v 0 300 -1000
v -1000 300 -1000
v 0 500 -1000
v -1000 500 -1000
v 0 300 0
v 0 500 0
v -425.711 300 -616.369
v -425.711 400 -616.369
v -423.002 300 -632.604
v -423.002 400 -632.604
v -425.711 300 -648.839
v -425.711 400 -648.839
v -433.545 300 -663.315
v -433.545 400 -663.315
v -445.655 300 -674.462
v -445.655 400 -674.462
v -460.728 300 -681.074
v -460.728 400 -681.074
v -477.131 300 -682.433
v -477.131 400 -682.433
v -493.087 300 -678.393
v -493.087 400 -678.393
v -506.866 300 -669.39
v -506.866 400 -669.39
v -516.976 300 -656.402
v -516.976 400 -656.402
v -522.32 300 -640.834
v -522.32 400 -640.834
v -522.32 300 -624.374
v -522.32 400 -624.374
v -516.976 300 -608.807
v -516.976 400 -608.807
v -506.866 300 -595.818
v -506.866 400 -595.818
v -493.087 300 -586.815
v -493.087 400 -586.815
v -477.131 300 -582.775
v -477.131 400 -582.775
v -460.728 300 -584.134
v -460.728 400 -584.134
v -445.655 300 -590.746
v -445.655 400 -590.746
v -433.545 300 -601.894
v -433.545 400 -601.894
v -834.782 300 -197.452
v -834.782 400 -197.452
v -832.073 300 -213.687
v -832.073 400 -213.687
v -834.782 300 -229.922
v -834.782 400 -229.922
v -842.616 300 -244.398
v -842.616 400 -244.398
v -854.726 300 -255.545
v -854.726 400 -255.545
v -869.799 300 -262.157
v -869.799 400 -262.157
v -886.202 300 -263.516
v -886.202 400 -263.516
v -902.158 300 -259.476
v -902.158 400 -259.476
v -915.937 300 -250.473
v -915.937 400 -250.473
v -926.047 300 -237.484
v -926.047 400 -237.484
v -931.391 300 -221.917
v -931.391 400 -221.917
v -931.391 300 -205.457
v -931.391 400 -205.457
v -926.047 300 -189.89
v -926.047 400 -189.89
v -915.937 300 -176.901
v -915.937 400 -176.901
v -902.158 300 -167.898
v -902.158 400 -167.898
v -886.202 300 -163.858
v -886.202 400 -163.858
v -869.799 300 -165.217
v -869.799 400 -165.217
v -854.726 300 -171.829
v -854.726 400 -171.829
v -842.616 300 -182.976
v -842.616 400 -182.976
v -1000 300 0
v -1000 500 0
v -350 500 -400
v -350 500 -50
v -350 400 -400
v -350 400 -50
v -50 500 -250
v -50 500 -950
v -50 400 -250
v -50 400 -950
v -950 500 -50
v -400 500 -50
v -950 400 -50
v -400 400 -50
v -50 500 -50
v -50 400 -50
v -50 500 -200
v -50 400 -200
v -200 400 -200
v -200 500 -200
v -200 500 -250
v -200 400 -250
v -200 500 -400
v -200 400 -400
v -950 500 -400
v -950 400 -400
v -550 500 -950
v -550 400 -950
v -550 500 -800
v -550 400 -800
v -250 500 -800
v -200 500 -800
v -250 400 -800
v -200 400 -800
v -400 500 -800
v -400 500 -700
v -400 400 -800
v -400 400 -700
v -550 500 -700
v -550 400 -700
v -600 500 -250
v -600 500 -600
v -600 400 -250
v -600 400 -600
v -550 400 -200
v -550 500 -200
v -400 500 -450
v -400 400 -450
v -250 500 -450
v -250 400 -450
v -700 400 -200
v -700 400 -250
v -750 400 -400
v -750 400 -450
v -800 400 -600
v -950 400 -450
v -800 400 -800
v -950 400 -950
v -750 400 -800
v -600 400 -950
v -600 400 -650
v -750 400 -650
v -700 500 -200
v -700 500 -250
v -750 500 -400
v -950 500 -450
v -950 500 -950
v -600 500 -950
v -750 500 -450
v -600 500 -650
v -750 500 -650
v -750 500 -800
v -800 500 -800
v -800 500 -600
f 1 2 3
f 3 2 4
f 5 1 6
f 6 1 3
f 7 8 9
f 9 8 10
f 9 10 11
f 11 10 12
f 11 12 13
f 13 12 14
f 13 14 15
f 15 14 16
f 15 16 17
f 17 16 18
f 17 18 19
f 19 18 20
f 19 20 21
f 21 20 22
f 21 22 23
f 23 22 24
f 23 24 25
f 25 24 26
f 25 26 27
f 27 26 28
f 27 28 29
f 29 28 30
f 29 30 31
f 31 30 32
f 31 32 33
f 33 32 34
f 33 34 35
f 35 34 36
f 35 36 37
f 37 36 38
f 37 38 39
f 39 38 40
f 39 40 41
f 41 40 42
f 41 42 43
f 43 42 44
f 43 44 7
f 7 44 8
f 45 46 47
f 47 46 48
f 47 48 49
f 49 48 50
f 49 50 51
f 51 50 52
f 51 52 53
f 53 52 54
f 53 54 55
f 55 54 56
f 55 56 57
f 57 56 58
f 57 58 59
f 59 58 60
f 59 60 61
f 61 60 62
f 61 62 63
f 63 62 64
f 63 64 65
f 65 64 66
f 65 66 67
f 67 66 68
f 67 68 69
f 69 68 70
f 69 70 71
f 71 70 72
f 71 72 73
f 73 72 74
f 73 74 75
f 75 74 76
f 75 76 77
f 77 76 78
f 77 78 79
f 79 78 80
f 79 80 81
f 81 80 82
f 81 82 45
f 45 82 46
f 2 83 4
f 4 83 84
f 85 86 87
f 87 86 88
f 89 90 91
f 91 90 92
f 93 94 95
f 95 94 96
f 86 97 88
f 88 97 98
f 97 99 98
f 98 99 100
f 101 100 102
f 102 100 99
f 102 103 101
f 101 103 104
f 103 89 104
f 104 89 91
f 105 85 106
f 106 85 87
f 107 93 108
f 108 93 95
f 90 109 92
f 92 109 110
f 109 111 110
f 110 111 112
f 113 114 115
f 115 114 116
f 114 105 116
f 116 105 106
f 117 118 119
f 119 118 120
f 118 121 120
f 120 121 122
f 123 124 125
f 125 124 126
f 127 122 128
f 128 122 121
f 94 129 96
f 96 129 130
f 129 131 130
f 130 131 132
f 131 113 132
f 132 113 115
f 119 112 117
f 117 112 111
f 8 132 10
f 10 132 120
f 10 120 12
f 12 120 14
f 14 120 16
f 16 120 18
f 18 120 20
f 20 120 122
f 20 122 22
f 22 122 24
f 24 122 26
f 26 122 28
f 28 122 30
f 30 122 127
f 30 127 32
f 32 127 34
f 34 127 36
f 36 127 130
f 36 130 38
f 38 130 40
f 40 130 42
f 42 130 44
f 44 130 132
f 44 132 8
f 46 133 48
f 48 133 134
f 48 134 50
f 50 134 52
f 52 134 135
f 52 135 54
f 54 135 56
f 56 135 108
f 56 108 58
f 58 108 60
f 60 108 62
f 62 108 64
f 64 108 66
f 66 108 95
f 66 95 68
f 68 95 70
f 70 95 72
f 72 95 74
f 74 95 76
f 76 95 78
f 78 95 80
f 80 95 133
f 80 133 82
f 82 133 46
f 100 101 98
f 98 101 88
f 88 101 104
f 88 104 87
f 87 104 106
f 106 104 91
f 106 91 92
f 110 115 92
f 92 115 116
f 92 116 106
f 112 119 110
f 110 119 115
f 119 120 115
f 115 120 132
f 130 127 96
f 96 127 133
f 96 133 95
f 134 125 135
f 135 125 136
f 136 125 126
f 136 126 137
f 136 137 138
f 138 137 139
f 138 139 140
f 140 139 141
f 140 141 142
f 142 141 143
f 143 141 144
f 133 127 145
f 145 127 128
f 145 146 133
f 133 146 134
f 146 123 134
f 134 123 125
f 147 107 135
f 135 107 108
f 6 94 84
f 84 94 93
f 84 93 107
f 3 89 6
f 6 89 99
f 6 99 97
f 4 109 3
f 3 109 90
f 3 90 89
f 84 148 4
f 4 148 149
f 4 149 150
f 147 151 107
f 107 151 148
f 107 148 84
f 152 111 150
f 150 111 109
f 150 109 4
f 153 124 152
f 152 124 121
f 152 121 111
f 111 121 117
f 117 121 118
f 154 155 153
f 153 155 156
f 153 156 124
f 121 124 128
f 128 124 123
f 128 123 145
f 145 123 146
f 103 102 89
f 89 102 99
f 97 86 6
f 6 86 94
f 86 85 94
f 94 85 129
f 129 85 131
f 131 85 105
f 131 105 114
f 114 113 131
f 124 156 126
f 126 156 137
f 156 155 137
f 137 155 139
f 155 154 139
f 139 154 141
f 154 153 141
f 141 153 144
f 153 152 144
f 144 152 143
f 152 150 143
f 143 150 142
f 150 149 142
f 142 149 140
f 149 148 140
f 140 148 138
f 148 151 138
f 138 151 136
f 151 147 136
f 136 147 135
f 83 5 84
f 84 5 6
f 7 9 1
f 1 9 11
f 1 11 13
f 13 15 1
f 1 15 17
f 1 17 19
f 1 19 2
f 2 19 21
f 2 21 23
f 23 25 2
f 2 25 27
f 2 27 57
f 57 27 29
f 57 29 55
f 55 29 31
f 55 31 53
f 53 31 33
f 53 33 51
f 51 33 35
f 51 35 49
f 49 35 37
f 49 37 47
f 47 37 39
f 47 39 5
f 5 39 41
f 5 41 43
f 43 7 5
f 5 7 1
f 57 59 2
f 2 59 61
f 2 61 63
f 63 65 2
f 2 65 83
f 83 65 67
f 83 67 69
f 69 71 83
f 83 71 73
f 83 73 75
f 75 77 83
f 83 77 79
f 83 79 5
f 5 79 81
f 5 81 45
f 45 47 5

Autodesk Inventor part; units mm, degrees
ref_plane "YZ Plane" through (0, 0, 0) normal (1, 0, 0) x (0, 1, 0)
ref_plane "XZ Plane" through (0, 0, 0) normal (0, 1, 0) x (-1, 0, 0)
ref_plane "XY Plane" through (0, 0, 0) normal (0, 0, 1) x (1, 0, 0)
sketch "Sketch1" plane through (0, 0, 0) normal (0, 1, 0) x (-1, 0, 0)
  line L0 (0, 0) -> (1000, 0)
  line L1 (1000, 0) -> (1000, -1000)
  line L2 (1000, -1000) -> (0, -1000)
  line L3 (0, -1000) -> (0, 0)
  dimension "d0" = 1000
  dimension "d1" = 1000
  dimension "d2" = 1000
extrude "Extrusion1" add sketch "Sketch1" along normal blind 500
sketch "Sketch2" plane through (0, 500, 0) normal (0, 1, 0) x (1, 0, 0)
  point P0 (0, 0)
sketch "Sketch3" plane through (0, 500, 0) normal (0, 1, 0) x (1, 0, 0)
  point P0 (0, 0)
sketch "Sketch4" plane through (0, 500, 0) normal (0, 1, 0) x (1, 0, 0)
  line L0 (-1000, 0) -> (0, 0) projected
  line L1 (-50, 50) -> (-50, 200)
  line L2 (-50, 200) -> (-200, 200)
  line L3 (-200, 200) -> (-350, 200)
  line L4 (-350, 200) -> (-350, 50)
  line L5 (-350, 50) -> (-50, 50)
  dimension "d7" = 150
  dimension "d8" = 150
  dimension "d9" = 150
  dimension "d10" = 150
  dimension "d13" = 200
  dimension "d14" = 50
extrude "Extrusion2" cut sketch "Sketch4" against normal blind 100
sketch "Sketch5" plane through (0, 500, 0) normal (0, 1, 0) x (1, 0, 0)
  line L0 (-350, 200) -> (-50, 200) projected
  line L1 (-350, 200) -> (-350, 400)
  line L2 (-350, 400) -> (-50, 400)
  line L3 (-50, 400) -> (-50, 250)
  line L4 (-50, 250) -> (-200, 250)
  line L5 (-200, 250) -> (-200, 200)
  point P0 (0, 0)
  dimension "d17" = 200
  dimension "d18" = 300
  dimension "d19" = 150
  dimension "d20" = 150
extrude "Extrusion3" cut sketch "Sketch5" against normal blind 100
sketch "Sketch6" plane through (0, 500, 0) normal (0, 1, 0) x (1, 0, 0)
  line L0 (-50, 400) -> (-50, 250) projected
  line L1 (-50, 400) -> (-50, 900)
  line L2 (-50, 900) -> (-50, 950)
  line L3 (-50, 950) -> (-550, 950)
  line L4 (-550, 950) -> (-550, 800)
  line L5 (-550, 800) -> (-250, 800)
  line L6 (-250, 800) -> (-200, 800)
  line L7 (-200, 800) -> (-200, 400)
  line L8 (-350, 400) -> (-50, 400) projected
  line L9 (-200, 400) -> (-50, 400)
  point P0 (0, 0)
  dimension "d23" = 500
  dimension "d24" = 50
  dimension "d25" = 500
  dimension "d26" = 150
  dimension "d27" = 300
  dimension "d28" = 50
extrude "Extrusion4" cut sketch "Sketch6" against normal blind 100
sketch "Sketch7" plane through (0, 500, 0) normal (0, 1, 0) x (1, 0, 0)
  line L0 (-250, 800) -> (-250, 500)
  line L1 (-250, 500) -> (-250, 450)
  line L2 (-250, 450) -> (-400, 450)
  line L3 (-400, 450) -> (-400, 50)
  line L4 (-400, 50) -> (-550, 50)
  line L5 (-550, 50) -> (-550, 200)
  line L6 (-550, 200) -> (-550, 400)
  line L7 (-550, 400) -> (-550, 600)
  line L8 (-550, 600) -> (-550, 700)
  line L9 (-550, 700) -> (-400, 700)
  line L10 (-400, 700) -> (-400, 800)
  line L11 (-400, 800) -> (-250, 800)
  point P0 (0, 0)
  point P1 (-200, 800)
  dimension "d32" = 50
  dimension "d33" = 300
  dimension "d34" = 50
  dimension "d35" = 150
  dimension "d36" = 400
  dimension "d37" = 150
  dimension "d38" = 150
  dimension "d39" = 200
  dimension "d40" = 200
  dimension "d41" = 100
  dimension "d42" = 150
  dimension "d43" = 250
extrude "Extrusion5" cut sketch "Sketch7" against normal blind 100
sketch "Sketch8" plane through (0, 500, 0) normal (0, 1, 0) x (1, 0, 0)
  point P0 (0, 0)
sketch "Sketch9" plane through (0, 500, 0) normal (0, 1, 0) x (1, 0, 0)
  point P0 (0, 0)
sketch "Sketch10" plane through (0, 500, 0) normal (0, 1, 0) x (1, 0, 0)
  line L0 (0, 0) -> (0, 1000) projected
  line L1 (-550, 50) -> (-550, 200)
  line L2 (-550, 50) -> (-550, 700) projected
  line L3 (-550, 200) -> (-650, 200)
  line L4 (-650, 200) -> (-850, 200)
  line L5 (-850, 200) -> (-900, 200)
  line L6 (-900, 200) -> (-950, 200)
  line L7 (-950, 200) -> (-950, 50)
  line L8 (-950, 50) -> (-550, 50)
  point P0 (-400, 50)
  dimension "d48" = 150
  dimension "d49" = 150
  dimension "d50" = 100
  dimension "d51" = 200
  dimension "d52" = 50
  dimension "d53" = 50
extrude "Extrusion6" cut sketch "Sketch10" against normal blind 100
sketch "Sketch11" plane through (0, 500, 0) normal (0, 1, 0) x (1, 0, 0)
  line L0 (-700, 200) -> (-700, 250)
  line L1 (-700, 250) -> (-600, 250)
  line L2 (-600, 250) -> (-600, 400)
  line L3 (-600, 400) -> (-950, 400)
  line L4 (-950, 400) -> (-950, 200)
  line L5 (-950, 200) -> (-700, 200)
  point P0 (0, 0)
  dimension "d60" = 50
  dimension "d61" = 100
  dimension "d62" = 150
  dimension "d63" = 350
extrude "Extrusion7" cut sketch "Sketch11" against normal blind 100
sketch "Sketch12" plane through (0, 500, 0) normal (0, 1, 0) x (1, 0, 0)
  point P0 (0, 0)
sketch "Sketch13" plane through (0, 500, 0) normal (0, 1, 0) x (1, 0, 0)
  line L0 (0, 0) -> (0, 1000) projected
  line L1 (-600, 400) -> (-600, 550)
  line L2 (-600, 550) -> (-600, 600)
  line L3 (-950, 600) -> (-950, 450)
  line L4 (-950, 450) -> (-750, 450)
  line L5 (-750, 450) -> (-750, 400)
  line L6 (-750, 400) -> (-600, 400)
  line L7 (-950, 600) -> (-950, 950)
  line L8 (-950, 950) -> (-650, 950)
  line L9 (-650, 950) -> (-600, 950)
  line L10 (-600, 950) -> (-600, 650)
  line L11 (-600, 650) -> (-750, 650)
  line L12 (-750, 650) -> (-750, 700)
  line L13 (-750, 700) -> (-750, 800)
  line L14 (-750, 800) -> (-800, 800)
  line L15 (-800, 800) -> (-800, 600)
  line L16 (-600, 600) -> (-600, 400)
  line L17 (-800, 600) -> (-600, 600)
  dimension "d69" = 150
  dimension "d70" = 50
  dimension "d71" = 350
  dimension "d72" = 150
  dimension "d73" = 200
  dimension "d74" = 350
  dimension "d75" = 300
  dimension "d76" = 50
  dimension "d77" = 300
  dimension "d79" = 50
  dimension "d80" = 100
  dimension "d81" = 50
  dimension "d82" = 90
  dimension "d83" = 600
  dimension "d84" = 750
extrude "Extrusion8" cut sketch "Sketch13" against normal blind 100
sketch "Sketch14" plane through (0, 400, 0) normal (0, 1, 0) x (1, 0, 0)
  circle A0 centre (-882.0732, 213.6869) radius 50
  point P0 (0, 0)
  dimension "d87" = 100
  dimension "d88" = 907.5875
extrude "Extrusion9" cut sketch "Sketch14" against normal blind 500
sketch "Sketch15" plane through (0, 400, 0) normal (0, 1, 0) x (1, 0, 0)
  circle A0 centre (-473.0021, 632.6041) radius 50
  point P0 (0, 0)
  dimension "d91" = 100
  dimension "d92" = 789.8854
extrude "Extrusion10" cut sketch "Sketch15" against normal blind 500
sketch "Sketch16" plane through (0, 0, 0) normal (0, -1, 0) x (1, 0, 0)
  line L0 (0, -1000) -> (0, 0) projected
  line L1 (0, 0) -> (0, -1000)
  line L2 (0, -1000) -> (-1000, -1000)
  line L3 (-1000, -1000) -> (-1000, 0) projected
  line L4 (-1000, -1000) -> (-1000, 0)
  line L5 (-1000, 0) -> (0, 0) projected
  line L6 (-1000, 0) -> (0, 0)
extrude "Extrusion11" cut sketch "Sketch16" against normal blind 300
